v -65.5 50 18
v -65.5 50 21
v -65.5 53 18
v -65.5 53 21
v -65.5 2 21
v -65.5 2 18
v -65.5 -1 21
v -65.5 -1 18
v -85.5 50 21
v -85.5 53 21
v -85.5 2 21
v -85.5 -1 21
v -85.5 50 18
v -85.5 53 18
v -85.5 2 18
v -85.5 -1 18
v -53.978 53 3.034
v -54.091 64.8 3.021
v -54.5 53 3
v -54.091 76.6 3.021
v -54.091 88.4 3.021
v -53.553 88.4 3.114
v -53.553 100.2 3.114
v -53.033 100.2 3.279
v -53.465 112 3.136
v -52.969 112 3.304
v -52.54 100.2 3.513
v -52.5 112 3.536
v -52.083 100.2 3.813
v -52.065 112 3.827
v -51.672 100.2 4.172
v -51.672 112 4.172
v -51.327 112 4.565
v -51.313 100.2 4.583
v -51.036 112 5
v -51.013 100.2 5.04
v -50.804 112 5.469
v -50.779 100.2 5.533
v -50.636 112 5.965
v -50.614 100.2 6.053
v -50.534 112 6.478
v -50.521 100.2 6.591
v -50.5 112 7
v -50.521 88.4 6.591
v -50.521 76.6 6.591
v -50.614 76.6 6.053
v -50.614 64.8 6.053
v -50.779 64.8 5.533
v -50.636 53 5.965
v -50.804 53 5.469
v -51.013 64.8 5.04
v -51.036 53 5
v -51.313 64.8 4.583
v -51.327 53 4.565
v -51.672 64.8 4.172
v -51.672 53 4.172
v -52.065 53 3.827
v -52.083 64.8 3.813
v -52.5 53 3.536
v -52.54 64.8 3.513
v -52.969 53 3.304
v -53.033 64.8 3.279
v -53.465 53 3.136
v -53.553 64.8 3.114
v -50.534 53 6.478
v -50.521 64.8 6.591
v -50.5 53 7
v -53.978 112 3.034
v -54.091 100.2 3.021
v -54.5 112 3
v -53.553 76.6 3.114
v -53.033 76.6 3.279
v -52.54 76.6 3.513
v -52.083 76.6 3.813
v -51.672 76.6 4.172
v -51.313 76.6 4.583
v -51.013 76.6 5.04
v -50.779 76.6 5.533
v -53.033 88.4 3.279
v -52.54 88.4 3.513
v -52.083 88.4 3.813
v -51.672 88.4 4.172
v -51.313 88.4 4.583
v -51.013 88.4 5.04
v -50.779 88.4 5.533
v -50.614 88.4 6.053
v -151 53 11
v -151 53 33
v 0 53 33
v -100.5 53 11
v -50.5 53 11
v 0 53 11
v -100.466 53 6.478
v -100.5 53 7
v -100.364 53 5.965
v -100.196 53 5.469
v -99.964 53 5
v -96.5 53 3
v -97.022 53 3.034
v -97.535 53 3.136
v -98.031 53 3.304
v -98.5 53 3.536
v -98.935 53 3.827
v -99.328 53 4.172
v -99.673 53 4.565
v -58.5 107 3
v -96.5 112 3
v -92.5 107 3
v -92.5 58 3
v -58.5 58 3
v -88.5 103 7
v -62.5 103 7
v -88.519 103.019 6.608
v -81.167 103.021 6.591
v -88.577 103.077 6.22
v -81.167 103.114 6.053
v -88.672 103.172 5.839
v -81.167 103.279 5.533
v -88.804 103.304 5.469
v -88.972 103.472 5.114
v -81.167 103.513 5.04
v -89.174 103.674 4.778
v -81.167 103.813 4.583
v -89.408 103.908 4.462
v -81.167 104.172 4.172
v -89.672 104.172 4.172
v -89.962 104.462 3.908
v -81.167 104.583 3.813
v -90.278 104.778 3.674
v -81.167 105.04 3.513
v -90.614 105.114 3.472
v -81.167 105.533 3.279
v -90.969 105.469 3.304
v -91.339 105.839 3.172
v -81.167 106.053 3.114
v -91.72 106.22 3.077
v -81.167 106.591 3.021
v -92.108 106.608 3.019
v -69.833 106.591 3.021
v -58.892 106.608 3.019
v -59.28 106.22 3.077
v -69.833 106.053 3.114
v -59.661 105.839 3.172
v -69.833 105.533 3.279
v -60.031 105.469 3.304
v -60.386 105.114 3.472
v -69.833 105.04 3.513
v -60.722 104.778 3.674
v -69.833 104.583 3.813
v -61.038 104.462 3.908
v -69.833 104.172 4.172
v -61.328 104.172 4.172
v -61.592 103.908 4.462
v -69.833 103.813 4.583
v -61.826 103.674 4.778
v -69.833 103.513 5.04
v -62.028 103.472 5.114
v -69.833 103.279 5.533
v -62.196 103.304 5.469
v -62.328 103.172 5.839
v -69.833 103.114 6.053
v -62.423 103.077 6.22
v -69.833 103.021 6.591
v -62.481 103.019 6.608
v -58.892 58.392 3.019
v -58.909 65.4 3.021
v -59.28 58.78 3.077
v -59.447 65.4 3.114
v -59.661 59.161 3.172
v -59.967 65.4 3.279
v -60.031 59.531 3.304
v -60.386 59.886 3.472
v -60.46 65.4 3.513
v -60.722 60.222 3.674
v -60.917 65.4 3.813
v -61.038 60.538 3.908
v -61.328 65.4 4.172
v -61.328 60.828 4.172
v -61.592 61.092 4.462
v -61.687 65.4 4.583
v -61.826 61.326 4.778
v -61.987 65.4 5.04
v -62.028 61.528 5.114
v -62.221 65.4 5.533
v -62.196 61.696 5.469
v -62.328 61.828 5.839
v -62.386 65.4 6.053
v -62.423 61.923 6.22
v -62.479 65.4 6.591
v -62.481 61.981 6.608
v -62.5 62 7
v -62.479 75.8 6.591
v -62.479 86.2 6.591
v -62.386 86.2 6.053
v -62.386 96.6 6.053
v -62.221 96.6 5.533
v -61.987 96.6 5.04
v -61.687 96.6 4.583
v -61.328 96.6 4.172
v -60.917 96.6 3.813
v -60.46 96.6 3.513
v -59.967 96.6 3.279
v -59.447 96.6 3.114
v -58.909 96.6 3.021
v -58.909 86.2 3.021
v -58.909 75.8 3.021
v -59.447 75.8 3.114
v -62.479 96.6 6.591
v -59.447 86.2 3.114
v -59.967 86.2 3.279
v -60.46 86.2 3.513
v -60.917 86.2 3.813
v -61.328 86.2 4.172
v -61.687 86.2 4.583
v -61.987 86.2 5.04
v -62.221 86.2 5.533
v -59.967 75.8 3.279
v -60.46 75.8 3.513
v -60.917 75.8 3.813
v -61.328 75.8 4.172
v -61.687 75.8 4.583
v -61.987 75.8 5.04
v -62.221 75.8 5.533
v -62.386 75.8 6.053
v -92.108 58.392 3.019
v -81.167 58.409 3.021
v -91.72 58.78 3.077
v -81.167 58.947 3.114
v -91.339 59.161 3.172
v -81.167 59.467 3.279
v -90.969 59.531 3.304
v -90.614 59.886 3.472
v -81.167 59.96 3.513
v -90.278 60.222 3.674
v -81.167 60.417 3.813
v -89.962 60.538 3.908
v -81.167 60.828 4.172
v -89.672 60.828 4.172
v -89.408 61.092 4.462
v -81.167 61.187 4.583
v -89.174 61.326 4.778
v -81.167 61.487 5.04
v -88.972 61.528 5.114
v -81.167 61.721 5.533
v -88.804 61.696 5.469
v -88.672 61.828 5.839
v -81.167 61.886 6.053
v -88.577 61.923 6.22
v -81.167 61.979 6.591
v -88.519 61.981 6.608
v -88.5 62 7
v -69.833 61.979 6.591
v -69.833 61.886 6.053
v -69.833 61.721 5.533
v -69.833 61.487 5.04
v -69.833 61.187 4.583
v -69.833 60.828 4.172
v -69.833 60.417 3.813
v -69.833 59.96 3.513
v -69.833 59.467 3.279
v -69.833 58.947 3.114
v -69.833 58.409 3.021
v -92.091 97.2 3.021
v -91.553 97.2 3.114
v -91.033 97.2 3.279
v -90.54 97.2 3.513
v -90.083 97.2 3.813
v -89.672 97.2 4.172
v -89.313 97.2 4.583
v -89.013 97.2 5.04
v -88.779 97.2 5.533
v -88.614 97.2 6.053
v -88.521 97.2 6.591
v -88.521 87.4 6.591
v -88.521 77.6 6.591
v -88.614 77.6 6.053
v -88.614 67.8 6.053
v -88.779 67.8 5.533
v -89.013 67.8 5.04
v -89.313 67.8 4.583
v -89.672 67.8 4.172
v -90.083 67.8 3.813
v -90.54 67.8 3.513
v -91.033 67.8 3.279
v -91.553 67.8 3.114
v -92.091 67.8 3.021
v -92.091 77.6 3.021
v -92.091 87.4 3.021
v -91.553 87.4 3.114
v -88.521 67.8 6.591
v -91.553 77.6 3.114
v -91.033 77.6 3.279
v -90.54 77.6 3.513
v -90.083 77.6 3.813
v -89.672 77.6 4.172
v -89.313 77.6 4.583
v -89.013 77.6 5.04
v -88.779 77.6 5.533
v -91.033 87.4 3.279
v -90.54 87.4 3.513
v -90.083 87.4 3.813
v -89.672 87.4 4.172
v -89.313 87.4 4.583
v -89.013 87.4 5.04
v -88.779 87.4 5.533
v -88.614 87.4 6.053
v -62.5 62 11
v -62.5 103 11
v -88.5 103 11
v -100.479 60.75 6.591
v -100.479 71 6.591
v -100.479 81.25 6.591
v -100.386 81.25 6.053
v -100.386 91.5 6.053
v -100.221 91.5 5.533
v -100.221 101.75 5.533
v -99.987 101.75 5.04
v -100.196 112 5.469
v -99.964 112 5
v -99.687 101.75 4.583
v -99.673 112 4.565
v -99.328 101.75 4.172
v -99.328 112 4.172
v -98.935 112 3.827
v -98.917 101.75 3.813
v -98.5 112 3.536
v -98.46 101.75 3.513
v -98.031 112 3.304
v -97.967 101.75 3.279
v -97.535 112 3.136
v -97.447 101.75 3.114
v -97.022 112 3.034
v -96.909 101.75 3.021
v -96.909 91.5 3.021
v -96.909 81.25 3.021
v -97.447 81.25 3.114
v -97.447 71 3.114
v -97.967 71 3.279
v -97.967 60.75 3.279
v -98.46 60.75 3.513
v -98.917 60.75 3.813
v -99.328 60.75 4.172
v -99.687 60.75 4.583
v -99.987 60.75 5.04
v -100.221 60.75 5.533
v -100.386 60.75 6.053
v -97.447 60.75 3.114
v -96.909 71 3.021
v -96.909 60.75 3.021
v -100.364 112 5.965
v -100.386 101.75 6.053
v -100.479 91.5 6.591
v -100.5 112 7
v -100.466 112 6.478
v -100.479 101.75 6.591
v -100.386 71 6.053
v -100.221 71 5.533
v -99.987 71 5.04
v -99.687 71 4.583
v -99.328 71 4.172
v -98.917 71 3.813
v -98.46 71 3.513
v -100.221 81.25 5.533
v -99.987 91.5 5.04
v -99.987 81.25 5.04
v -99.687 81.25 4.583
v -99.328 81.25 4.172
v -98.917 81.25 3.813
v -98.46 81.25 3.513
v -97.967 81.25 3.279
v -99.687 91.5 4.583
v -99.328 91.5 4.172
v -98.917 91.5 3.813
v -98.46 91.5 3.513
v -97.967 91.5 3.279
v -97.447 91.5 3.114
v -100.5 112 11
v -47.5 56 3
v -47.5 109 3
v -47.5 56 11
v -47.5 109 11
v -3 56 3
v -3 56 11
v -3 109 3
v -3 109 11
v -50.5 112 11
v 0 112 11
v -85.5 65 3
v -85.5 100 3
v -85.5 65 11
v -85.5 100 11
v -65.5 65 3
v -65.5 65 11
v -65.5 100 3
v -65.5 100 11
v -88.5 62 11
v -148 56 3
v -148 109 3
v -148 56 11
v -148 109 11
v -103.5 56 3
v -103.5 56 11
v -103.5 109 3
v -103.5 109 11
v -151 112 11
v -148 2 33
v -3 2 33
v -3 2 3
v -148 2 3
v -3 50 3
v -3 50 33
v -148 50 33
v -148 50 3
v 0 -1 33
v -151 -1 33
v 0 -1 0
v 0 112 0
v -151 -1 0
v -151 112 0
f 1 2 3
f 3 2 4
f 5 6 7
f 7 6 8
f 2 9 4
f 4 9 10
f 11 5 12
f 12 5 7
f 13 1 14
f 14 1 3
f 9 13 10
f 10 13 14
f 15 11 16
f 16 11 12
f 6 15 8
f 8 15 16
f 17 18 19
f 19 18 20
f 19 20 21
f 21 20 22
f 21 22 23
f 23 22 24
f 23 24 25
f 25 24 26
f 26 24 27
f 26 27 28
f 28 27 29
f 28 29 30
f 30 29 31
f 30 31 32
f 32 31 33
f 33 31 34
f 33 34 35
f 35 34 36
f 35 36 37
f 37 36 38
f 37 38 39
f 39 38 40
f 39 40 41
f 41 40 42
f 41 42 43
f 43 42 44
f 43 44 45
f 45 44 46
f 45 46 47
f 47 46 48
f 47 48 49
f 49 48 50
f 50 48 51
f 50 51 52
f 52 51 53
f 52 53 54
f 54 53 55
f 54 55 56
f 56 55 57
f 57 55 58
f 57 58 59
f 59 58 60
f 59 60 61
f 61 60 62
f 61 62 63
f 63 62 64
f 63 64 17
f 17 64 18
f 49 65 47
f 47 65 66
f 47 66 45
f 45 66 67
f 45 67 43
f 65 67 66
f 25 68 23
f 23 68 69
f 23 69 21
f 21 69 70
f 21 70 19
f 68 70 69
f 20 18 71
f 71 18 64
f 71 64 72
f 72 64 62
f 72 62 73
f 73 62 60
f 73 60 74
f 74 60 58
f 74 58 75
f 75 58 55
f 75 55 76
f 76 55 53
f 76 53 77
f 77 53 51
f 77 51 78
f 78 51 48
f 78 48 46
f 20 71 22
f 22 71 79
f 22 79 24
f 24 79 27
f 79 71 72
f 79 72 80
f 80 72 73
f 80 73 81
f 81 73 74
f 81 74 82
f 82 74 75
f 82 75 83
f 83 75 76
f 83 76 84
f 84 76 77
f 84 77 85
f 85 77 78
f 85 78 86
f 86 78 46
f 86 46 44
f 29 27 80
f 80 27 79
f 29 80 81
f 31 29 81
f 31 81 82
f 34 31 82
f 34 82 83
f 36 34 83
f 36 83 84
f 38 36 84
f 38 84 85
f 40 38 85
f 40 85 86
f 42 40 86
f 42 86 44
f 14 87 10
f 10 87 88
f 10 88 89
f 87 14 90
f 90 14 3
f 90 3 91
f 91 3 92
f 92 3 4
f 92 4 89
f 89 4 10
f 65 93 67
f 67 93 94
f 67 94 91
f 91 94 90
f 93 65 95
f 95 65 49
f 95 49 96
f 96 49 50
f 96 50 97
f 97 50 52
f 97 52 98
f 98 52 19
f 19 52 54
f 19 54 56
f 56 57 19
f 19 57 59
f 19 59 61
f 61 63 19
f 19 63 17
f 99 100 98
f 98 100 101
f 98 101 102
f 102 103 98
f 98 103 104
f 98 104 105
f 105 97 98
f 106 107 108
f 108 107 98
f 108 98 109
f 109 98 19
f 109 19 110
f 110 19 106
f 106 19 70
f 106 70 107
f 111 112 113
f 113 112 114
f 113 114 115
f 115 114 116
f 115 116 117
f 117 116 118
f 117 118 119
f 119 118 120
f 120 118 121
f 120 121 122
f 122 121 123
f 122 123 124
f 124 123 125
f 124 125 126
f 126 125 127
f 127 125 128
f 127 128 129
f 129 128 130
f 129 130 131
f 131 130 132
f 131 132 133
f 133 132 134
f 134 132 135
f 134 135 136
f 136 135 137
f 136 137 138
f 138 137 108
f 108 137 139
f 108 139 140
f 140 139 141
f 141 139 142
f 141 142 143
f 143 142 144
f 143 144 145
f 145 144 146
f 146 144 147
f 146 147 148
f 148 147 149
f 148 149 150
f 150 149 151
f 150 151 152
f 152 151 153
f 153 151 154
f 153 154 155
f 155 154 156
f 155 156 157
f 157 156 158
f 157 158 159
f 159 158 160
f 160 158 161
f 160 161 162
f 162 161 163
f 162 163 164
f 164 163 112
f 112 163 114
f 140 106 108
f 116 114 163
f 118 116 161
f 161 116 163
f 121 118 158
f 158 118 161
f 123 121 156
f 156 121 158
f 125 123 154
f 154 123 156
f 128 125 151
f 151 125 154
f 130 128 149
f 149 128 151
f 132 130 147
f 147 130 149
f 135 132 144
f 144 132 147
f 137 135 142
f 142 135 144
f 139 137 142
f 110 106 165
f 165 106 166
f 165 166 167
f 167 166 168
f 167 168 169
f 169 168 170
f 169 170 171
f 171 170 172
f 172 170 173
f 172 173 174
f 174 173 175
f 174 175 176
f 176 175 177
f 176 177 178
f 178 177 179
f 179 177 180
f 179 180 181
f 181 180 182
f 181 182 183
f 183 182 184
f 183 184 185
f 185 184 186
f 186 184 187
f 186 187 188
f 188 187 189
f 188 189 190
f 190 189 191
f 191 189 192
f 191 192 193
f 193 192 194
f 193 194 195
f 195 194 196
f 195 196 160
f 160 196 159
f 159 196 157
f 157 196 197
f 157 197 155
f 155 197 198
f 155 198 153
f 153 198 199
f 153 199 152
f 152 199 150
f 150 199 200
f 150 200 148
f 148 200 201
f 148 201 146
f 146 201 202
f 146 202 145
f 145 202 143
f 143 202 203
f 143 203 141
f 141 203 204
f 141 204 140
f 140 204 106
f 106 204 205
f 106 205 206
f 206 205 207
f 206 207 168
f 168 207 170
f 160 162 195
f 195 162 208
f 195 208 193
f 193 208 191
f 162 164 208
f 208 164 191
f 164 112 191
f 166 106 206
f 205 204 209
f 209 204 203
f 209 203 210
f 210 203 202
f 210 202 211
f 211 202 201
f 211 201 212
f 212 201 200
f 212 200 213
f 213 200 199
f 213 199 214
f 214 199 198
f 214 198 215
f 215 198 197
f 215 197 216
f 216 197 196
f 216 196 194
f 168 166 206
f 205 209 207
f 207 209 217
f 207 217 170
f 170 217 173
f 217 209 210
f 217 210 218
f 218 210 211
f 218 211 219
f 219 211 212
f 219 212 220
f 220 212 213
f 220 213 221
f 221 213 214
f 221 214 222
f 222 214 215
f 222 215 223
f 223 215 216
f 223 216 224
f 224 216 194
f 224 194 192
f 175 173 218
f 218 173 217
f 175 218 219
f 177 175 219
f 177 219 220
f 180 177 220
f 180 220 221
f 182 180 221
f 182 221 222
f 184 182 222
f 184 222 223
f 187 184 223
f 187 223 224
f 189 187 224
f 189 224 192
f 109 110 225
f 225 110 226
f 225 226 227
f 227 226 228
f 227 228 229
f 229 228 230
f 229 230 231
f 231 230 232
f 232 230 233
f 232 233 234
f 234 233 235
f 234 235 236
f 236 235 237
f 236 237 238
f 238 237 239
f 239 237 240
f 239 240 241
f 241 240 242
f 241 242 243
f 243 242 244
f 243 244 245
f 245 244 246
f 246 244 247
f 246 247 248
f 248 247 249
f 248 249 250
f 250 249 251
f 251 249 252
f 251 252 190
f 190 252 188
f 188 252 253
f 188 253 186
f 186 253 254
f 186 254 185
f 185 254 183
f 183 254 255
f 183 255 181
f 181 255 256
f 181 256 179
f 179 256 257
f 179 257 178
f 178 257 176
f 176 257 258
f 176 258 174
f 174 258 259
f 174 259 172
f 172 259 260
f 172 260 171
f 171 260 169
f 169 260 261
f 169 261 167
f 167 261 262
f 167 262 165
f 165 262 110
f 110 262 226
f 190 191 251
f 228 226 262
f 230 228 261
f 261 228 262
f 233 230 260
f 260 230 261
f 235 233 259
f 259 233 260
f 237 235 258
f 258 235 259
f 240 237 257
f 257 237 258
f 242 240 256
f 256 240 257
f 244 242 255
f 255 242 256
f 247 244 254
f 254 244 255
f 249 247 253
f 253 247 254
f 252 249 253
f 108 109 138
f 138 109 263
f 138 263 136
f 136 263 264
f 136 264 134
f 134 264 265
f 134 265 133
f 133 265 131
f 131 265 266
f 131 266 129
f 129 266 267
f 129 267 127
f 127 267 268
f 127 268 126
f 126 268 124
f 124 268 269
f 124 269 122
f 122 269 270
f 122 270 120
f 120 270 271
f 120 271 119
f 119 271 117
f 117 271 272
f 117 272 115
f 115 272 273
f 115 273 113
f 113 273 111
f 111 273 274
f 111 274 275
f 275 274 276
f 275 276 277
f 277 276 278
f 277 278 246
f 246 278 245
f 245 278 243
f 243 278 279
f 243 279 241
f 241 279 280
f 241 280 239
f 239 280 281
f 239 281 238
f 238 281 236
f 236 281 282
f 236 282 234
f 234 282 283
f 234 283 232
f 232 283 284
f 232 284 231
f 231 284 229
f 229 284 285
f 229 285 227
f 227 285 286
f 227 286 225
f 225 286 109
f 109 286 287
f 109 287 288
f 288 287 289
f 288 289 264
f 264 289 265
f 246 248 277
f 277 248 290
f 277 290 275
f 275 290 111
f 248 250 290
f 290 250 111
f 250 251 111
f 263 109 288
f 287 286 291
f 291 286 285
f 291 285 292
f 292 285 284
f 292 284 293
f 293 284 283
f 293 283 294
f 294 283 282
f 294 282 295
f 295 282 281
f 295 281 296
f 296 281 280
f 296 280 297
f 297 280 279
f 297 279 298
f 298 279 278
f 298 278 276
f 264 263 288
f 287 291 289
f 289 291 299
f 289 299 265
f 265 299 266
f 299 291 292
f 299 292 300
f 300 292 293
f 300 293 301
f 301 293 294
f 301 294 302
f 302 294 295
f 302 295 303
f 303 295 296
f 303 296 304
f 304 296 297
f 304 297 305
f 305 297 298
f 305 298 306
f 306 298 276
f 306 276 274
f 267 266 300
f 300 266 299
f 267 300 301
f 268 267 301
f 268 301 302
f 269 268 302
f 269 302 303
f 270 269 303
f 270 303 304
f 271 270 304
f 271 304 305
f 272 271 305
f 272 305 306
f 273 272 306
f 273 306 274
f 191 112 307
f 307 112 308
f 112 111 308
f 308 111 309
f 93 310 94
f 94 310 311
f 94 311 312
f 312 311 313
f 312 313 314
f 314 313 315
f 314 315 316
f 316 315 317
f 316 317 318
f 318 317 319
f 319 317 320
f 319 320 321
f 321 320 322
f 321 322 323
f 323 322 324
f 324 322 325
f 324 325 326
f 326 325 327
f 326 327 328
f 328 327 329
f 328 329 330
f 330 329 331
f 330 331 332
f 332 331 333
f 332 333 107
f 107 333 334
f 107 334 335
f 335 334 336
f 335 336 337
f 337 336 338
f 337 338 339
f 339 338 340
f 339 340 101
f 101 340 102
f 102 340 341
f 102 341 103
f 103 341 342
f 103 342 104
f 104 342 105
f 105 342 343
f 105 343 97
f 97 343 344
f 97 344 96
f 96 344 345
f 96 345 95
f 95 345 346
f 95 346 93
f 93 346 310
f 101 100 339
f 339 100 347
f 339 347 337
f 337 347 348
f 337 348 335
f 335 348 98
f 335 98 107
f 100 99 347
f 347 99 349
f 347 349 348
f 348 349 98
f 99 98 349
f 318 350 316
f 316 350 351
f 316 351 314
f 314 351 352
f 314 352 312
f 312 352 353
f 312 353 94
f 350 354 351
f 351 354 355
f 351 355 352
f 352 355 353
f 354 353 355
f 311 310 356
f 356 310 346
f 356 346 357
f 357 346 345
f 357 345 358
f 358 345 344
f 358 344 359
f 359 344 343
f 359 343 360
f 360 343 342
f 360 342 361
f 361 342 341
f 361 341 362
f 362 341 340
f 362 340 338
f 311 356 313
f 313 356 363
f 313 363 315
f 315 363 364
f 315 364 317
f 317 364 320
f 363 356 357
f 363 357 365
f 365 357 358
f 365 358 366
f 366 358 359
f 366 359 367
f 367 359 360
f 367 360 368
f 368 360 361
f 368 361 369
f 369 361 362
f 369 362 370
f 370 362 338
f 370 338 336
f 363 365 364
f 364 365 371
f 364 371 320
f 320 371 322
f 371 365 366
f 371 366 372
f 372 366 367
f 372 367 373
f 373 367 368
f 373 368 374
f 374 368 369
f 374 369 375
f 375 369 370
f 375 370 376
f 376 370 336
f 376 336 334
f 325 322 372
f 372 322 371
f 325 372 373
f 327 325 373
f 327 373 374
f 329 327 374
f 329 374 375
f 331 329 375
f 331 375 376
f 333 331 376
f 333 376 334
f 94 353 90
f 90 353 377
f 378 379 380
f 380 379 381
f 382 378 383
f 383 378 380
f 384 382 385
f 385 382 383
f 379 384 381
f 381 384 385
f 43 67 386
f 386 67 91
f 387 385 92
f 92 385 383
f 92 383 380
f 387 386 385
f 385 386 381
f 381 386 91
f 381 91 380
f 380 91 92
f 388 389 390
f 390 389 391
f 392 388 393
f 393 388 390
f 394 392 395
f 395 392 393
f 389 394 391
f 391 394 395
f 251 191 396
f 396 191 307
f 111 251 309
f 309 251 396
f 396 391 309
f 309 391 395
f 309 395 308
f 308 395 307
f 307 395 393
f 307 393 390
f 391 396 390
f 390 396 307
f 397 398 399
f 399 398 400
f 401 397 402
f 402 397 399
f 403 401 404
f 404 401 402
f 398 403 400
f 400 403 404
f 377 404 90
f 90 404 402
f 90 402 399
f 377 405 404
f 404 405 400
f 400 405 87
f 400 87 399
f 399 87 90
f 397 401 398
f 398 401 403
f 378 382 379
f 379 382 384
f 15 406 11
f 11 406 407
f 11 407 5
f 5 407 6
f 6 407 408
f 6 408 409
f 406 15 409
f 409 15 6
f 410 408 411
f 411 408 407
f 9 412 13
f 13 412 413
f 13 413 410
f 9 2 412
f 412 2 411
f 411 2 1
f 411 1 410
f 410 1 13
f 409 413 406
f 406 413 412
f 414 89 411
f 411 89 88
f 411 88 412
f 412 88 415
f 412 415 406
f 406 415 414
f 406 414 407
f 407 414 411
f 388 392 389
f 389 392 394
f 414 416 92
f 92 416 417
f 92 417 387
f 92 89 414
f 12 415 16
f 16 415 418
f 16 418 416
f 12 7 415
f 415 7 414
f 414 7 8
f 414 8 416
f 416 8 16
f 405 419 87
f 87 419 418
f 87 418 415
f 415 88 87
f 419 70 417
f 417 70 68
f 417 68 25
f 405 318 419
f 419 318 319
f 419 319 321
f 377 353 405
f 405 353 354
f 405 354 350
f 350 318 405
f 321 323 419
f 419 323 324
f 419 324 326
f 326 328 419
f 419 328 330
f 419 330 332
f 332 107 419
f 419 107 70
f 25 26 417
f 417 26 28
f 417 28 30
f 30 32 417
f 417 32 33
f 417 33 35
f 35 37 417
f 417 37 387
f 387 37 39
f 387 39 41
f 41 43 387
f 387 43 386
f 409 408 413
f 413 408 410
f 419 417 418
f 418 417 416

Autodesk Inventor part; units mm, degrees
ref_plane "YZ Plane" through (0, 0, 0) normal (1, 0, 0) x (0, 1, 0)
ref_plane "XZ Plane" through (0, 0, 0) normal (0, 1, 0) x (-1, 0, 0)
ref_plane "XY Plane" through (0, 0, 0) normal (0, 0, 1) x (1, 0, 0)
sketch "Sketch1" plane through (0, 0, 0) normal (0, 0, 1) x (1, 0, 0)
  line L0 (0, 0) -> (-151, 0)
  line L1 (-151, 0) -> (-151, 112)
  line L2 (-151, 112) -> (0, 112)
  line L3 (0, 112) -> (0, 0)
  line L4 (-151, 0) -> (0, 0)
  line L5 (0, 0) -> (0, -1)
  line L6 (0, -1) -> (-151, -1)
  line L7 (-151, -1) -> (-151, 0)
  dimension "d0" = 151
  dimension "d1" = 112
  dimension "d35" = 1
extrude "Extrusion1" add sketch "Sketch1" along normal blind 3
sketch "Sketch2" plane through (0, 0, 3) normal (0, 0, 1) x (1, 0, 0)
  line L0 (-151, 0) -> (0, 0) projected
  line L1 (0, 0) -> (-151, 0)
  line L2 (-151, 0) -> (-151, 53)
  line L3 (-151, 53) -> (0, 53)
  line L4 (0, 53) -> (0, 0)
  line L5 (-148, 50) -> (-3, 50)
  line L6 (-3, 50) -> (-3, 3)
  line L7 (-3, 3) -> (-148, 3)
  line L8 (-148, 3) -> (-148, 50)
  line L9 (-151, -1) -> (0, -1) projected
  line L10 (-151, 112) -> (-151, -1) projected
  line L11 (0, -1) -> (0, 112) projected
  line L12 (-148, 3) -> (-3, 3)
  line L13 (-3, 3) -> (-3, 2)
  line L14 (-3, 2) -> (-148, 2)
  line L15 (-148, 2) -> (-148, 3)
  dimension "d4" = 151
  dimension "d5" = 53
  dimension "d6" = 3
  dimension "d7" = 3
  dimension "d8" = 3
  dimension "d9" = 3
  dimension "d36" = 1
extrude "Extrusion2" add sketch "Sketch2" along normal blind 30
sketch "Sketch3" plane through (0, 0, 3) normal (0, 0, 1) x (1, 0, 0)
  line L0 (-148, 109) -> (-103.5, 109)
  line L1 (-103.5, 109) -> (-103.5, 56)
  line L2 (-103.5, 56) -> (-148, 56)
  line L3 (-148, 56) -> (-148, 109)
  line L4 (-47.5, 109) -> (-3, 109)
  line L5 (-3, 109) -> (-3, 56)
  line L6 (-3, 56) -> (-47.5, 56)
  line L7 (-47.5, 56) -> (-47.5, 109)
  line L8 (0, 112) -> (-151, 112) projected
  line L9 (-151, 112) -> (-151, 53) projected
  line L10 (0, 53) -> (0, 112) projected
  line L11 (-85.5, 100) -> (-65.5, 100)
  line L12 (-65.5, 100) -> (-65.5, 65)
  line L13 (-65.5, 65) -> (-85.5, 65)
  line L14 (-85.5, 65) -> (-85.5, 100)
  line L15 (-62.5, 103) -> (-88.5, 103)
  line L16 (-88.5, 103) -> (-88.5, 62)
  line L17 (-88.5, 62) -> (-62.5, 62)
  line L18 (-62.5, 62) -> (-62.5, 103)
  line L19 (-100.5, 112) -> (-151, 112)
  line L20 (-151, 112) -> (-151, 53)
  line L21 (-151, 53) -> (-100.5, 53)
  line L22 (-100.5, 53) -> (-100.5, 112)
  line L23 (0, 112) -> (-50.5, 112)
  line L24 (-50.5, 112) -> (-50.5, 53)
  line L25 (-50.5, 53) -> (0, 53)
  line L26 (0, 53) -> (0, 112)
  point P0 (0, 0)
  dimension "d12" = 44.5
  dimension "d13" = 53
  dimension "d14" = 44.5
  dimension "d15" = 53
  dimension "d16" = 3
  dimension "d17" = 3
  dimension "d18" = 3
  dimension "d19" = 20
  dimension "d20" = 35
  dimension "d21" = 12
  dimension "d22" = 18
  dimension "d23" = 3
  dimension "d24" = 3
  dimension "d25" = 3
extrude "Extrusion3" add sketch "Sketch3" along normal blind 8
fillet "Fillet1" radius 4 6 edges at (-100.5, 82.5, 3) (-62.5, 82.5, 3) (-50.5, 82.5, 3) (-75.5, 103, 3) (-88.5, 82.5, 3) (-75.5, 62, 3)
sketch "Sketch6" plane through (-151, -1, 0) normal (0, -1, 0) x (1, 0, 0)
  line L0 (65.5, 21) -> (85.5, 21)
  line L1 (85.5, 21) -> (85.5, 18)
  line L2 (85.5, 18) -> (65.5, 18)
  line L3 (65.5, 18) -> (65.5, 21)
  line L4 (0, 0) -> (0, 33) projected
  line L5 (0, 33) -> (151, 33) projected
  point P0 (151, 0)
  dimension "d37" = 20
  dimension "d38" = 3
  dimension "d39" = 65.5
  dimension "d40" = 12
extrude "Extrusion5" cut sketch "Sketch6" against normal up to surface (54 mm away)
properties part number "bateria_mocowanie"
